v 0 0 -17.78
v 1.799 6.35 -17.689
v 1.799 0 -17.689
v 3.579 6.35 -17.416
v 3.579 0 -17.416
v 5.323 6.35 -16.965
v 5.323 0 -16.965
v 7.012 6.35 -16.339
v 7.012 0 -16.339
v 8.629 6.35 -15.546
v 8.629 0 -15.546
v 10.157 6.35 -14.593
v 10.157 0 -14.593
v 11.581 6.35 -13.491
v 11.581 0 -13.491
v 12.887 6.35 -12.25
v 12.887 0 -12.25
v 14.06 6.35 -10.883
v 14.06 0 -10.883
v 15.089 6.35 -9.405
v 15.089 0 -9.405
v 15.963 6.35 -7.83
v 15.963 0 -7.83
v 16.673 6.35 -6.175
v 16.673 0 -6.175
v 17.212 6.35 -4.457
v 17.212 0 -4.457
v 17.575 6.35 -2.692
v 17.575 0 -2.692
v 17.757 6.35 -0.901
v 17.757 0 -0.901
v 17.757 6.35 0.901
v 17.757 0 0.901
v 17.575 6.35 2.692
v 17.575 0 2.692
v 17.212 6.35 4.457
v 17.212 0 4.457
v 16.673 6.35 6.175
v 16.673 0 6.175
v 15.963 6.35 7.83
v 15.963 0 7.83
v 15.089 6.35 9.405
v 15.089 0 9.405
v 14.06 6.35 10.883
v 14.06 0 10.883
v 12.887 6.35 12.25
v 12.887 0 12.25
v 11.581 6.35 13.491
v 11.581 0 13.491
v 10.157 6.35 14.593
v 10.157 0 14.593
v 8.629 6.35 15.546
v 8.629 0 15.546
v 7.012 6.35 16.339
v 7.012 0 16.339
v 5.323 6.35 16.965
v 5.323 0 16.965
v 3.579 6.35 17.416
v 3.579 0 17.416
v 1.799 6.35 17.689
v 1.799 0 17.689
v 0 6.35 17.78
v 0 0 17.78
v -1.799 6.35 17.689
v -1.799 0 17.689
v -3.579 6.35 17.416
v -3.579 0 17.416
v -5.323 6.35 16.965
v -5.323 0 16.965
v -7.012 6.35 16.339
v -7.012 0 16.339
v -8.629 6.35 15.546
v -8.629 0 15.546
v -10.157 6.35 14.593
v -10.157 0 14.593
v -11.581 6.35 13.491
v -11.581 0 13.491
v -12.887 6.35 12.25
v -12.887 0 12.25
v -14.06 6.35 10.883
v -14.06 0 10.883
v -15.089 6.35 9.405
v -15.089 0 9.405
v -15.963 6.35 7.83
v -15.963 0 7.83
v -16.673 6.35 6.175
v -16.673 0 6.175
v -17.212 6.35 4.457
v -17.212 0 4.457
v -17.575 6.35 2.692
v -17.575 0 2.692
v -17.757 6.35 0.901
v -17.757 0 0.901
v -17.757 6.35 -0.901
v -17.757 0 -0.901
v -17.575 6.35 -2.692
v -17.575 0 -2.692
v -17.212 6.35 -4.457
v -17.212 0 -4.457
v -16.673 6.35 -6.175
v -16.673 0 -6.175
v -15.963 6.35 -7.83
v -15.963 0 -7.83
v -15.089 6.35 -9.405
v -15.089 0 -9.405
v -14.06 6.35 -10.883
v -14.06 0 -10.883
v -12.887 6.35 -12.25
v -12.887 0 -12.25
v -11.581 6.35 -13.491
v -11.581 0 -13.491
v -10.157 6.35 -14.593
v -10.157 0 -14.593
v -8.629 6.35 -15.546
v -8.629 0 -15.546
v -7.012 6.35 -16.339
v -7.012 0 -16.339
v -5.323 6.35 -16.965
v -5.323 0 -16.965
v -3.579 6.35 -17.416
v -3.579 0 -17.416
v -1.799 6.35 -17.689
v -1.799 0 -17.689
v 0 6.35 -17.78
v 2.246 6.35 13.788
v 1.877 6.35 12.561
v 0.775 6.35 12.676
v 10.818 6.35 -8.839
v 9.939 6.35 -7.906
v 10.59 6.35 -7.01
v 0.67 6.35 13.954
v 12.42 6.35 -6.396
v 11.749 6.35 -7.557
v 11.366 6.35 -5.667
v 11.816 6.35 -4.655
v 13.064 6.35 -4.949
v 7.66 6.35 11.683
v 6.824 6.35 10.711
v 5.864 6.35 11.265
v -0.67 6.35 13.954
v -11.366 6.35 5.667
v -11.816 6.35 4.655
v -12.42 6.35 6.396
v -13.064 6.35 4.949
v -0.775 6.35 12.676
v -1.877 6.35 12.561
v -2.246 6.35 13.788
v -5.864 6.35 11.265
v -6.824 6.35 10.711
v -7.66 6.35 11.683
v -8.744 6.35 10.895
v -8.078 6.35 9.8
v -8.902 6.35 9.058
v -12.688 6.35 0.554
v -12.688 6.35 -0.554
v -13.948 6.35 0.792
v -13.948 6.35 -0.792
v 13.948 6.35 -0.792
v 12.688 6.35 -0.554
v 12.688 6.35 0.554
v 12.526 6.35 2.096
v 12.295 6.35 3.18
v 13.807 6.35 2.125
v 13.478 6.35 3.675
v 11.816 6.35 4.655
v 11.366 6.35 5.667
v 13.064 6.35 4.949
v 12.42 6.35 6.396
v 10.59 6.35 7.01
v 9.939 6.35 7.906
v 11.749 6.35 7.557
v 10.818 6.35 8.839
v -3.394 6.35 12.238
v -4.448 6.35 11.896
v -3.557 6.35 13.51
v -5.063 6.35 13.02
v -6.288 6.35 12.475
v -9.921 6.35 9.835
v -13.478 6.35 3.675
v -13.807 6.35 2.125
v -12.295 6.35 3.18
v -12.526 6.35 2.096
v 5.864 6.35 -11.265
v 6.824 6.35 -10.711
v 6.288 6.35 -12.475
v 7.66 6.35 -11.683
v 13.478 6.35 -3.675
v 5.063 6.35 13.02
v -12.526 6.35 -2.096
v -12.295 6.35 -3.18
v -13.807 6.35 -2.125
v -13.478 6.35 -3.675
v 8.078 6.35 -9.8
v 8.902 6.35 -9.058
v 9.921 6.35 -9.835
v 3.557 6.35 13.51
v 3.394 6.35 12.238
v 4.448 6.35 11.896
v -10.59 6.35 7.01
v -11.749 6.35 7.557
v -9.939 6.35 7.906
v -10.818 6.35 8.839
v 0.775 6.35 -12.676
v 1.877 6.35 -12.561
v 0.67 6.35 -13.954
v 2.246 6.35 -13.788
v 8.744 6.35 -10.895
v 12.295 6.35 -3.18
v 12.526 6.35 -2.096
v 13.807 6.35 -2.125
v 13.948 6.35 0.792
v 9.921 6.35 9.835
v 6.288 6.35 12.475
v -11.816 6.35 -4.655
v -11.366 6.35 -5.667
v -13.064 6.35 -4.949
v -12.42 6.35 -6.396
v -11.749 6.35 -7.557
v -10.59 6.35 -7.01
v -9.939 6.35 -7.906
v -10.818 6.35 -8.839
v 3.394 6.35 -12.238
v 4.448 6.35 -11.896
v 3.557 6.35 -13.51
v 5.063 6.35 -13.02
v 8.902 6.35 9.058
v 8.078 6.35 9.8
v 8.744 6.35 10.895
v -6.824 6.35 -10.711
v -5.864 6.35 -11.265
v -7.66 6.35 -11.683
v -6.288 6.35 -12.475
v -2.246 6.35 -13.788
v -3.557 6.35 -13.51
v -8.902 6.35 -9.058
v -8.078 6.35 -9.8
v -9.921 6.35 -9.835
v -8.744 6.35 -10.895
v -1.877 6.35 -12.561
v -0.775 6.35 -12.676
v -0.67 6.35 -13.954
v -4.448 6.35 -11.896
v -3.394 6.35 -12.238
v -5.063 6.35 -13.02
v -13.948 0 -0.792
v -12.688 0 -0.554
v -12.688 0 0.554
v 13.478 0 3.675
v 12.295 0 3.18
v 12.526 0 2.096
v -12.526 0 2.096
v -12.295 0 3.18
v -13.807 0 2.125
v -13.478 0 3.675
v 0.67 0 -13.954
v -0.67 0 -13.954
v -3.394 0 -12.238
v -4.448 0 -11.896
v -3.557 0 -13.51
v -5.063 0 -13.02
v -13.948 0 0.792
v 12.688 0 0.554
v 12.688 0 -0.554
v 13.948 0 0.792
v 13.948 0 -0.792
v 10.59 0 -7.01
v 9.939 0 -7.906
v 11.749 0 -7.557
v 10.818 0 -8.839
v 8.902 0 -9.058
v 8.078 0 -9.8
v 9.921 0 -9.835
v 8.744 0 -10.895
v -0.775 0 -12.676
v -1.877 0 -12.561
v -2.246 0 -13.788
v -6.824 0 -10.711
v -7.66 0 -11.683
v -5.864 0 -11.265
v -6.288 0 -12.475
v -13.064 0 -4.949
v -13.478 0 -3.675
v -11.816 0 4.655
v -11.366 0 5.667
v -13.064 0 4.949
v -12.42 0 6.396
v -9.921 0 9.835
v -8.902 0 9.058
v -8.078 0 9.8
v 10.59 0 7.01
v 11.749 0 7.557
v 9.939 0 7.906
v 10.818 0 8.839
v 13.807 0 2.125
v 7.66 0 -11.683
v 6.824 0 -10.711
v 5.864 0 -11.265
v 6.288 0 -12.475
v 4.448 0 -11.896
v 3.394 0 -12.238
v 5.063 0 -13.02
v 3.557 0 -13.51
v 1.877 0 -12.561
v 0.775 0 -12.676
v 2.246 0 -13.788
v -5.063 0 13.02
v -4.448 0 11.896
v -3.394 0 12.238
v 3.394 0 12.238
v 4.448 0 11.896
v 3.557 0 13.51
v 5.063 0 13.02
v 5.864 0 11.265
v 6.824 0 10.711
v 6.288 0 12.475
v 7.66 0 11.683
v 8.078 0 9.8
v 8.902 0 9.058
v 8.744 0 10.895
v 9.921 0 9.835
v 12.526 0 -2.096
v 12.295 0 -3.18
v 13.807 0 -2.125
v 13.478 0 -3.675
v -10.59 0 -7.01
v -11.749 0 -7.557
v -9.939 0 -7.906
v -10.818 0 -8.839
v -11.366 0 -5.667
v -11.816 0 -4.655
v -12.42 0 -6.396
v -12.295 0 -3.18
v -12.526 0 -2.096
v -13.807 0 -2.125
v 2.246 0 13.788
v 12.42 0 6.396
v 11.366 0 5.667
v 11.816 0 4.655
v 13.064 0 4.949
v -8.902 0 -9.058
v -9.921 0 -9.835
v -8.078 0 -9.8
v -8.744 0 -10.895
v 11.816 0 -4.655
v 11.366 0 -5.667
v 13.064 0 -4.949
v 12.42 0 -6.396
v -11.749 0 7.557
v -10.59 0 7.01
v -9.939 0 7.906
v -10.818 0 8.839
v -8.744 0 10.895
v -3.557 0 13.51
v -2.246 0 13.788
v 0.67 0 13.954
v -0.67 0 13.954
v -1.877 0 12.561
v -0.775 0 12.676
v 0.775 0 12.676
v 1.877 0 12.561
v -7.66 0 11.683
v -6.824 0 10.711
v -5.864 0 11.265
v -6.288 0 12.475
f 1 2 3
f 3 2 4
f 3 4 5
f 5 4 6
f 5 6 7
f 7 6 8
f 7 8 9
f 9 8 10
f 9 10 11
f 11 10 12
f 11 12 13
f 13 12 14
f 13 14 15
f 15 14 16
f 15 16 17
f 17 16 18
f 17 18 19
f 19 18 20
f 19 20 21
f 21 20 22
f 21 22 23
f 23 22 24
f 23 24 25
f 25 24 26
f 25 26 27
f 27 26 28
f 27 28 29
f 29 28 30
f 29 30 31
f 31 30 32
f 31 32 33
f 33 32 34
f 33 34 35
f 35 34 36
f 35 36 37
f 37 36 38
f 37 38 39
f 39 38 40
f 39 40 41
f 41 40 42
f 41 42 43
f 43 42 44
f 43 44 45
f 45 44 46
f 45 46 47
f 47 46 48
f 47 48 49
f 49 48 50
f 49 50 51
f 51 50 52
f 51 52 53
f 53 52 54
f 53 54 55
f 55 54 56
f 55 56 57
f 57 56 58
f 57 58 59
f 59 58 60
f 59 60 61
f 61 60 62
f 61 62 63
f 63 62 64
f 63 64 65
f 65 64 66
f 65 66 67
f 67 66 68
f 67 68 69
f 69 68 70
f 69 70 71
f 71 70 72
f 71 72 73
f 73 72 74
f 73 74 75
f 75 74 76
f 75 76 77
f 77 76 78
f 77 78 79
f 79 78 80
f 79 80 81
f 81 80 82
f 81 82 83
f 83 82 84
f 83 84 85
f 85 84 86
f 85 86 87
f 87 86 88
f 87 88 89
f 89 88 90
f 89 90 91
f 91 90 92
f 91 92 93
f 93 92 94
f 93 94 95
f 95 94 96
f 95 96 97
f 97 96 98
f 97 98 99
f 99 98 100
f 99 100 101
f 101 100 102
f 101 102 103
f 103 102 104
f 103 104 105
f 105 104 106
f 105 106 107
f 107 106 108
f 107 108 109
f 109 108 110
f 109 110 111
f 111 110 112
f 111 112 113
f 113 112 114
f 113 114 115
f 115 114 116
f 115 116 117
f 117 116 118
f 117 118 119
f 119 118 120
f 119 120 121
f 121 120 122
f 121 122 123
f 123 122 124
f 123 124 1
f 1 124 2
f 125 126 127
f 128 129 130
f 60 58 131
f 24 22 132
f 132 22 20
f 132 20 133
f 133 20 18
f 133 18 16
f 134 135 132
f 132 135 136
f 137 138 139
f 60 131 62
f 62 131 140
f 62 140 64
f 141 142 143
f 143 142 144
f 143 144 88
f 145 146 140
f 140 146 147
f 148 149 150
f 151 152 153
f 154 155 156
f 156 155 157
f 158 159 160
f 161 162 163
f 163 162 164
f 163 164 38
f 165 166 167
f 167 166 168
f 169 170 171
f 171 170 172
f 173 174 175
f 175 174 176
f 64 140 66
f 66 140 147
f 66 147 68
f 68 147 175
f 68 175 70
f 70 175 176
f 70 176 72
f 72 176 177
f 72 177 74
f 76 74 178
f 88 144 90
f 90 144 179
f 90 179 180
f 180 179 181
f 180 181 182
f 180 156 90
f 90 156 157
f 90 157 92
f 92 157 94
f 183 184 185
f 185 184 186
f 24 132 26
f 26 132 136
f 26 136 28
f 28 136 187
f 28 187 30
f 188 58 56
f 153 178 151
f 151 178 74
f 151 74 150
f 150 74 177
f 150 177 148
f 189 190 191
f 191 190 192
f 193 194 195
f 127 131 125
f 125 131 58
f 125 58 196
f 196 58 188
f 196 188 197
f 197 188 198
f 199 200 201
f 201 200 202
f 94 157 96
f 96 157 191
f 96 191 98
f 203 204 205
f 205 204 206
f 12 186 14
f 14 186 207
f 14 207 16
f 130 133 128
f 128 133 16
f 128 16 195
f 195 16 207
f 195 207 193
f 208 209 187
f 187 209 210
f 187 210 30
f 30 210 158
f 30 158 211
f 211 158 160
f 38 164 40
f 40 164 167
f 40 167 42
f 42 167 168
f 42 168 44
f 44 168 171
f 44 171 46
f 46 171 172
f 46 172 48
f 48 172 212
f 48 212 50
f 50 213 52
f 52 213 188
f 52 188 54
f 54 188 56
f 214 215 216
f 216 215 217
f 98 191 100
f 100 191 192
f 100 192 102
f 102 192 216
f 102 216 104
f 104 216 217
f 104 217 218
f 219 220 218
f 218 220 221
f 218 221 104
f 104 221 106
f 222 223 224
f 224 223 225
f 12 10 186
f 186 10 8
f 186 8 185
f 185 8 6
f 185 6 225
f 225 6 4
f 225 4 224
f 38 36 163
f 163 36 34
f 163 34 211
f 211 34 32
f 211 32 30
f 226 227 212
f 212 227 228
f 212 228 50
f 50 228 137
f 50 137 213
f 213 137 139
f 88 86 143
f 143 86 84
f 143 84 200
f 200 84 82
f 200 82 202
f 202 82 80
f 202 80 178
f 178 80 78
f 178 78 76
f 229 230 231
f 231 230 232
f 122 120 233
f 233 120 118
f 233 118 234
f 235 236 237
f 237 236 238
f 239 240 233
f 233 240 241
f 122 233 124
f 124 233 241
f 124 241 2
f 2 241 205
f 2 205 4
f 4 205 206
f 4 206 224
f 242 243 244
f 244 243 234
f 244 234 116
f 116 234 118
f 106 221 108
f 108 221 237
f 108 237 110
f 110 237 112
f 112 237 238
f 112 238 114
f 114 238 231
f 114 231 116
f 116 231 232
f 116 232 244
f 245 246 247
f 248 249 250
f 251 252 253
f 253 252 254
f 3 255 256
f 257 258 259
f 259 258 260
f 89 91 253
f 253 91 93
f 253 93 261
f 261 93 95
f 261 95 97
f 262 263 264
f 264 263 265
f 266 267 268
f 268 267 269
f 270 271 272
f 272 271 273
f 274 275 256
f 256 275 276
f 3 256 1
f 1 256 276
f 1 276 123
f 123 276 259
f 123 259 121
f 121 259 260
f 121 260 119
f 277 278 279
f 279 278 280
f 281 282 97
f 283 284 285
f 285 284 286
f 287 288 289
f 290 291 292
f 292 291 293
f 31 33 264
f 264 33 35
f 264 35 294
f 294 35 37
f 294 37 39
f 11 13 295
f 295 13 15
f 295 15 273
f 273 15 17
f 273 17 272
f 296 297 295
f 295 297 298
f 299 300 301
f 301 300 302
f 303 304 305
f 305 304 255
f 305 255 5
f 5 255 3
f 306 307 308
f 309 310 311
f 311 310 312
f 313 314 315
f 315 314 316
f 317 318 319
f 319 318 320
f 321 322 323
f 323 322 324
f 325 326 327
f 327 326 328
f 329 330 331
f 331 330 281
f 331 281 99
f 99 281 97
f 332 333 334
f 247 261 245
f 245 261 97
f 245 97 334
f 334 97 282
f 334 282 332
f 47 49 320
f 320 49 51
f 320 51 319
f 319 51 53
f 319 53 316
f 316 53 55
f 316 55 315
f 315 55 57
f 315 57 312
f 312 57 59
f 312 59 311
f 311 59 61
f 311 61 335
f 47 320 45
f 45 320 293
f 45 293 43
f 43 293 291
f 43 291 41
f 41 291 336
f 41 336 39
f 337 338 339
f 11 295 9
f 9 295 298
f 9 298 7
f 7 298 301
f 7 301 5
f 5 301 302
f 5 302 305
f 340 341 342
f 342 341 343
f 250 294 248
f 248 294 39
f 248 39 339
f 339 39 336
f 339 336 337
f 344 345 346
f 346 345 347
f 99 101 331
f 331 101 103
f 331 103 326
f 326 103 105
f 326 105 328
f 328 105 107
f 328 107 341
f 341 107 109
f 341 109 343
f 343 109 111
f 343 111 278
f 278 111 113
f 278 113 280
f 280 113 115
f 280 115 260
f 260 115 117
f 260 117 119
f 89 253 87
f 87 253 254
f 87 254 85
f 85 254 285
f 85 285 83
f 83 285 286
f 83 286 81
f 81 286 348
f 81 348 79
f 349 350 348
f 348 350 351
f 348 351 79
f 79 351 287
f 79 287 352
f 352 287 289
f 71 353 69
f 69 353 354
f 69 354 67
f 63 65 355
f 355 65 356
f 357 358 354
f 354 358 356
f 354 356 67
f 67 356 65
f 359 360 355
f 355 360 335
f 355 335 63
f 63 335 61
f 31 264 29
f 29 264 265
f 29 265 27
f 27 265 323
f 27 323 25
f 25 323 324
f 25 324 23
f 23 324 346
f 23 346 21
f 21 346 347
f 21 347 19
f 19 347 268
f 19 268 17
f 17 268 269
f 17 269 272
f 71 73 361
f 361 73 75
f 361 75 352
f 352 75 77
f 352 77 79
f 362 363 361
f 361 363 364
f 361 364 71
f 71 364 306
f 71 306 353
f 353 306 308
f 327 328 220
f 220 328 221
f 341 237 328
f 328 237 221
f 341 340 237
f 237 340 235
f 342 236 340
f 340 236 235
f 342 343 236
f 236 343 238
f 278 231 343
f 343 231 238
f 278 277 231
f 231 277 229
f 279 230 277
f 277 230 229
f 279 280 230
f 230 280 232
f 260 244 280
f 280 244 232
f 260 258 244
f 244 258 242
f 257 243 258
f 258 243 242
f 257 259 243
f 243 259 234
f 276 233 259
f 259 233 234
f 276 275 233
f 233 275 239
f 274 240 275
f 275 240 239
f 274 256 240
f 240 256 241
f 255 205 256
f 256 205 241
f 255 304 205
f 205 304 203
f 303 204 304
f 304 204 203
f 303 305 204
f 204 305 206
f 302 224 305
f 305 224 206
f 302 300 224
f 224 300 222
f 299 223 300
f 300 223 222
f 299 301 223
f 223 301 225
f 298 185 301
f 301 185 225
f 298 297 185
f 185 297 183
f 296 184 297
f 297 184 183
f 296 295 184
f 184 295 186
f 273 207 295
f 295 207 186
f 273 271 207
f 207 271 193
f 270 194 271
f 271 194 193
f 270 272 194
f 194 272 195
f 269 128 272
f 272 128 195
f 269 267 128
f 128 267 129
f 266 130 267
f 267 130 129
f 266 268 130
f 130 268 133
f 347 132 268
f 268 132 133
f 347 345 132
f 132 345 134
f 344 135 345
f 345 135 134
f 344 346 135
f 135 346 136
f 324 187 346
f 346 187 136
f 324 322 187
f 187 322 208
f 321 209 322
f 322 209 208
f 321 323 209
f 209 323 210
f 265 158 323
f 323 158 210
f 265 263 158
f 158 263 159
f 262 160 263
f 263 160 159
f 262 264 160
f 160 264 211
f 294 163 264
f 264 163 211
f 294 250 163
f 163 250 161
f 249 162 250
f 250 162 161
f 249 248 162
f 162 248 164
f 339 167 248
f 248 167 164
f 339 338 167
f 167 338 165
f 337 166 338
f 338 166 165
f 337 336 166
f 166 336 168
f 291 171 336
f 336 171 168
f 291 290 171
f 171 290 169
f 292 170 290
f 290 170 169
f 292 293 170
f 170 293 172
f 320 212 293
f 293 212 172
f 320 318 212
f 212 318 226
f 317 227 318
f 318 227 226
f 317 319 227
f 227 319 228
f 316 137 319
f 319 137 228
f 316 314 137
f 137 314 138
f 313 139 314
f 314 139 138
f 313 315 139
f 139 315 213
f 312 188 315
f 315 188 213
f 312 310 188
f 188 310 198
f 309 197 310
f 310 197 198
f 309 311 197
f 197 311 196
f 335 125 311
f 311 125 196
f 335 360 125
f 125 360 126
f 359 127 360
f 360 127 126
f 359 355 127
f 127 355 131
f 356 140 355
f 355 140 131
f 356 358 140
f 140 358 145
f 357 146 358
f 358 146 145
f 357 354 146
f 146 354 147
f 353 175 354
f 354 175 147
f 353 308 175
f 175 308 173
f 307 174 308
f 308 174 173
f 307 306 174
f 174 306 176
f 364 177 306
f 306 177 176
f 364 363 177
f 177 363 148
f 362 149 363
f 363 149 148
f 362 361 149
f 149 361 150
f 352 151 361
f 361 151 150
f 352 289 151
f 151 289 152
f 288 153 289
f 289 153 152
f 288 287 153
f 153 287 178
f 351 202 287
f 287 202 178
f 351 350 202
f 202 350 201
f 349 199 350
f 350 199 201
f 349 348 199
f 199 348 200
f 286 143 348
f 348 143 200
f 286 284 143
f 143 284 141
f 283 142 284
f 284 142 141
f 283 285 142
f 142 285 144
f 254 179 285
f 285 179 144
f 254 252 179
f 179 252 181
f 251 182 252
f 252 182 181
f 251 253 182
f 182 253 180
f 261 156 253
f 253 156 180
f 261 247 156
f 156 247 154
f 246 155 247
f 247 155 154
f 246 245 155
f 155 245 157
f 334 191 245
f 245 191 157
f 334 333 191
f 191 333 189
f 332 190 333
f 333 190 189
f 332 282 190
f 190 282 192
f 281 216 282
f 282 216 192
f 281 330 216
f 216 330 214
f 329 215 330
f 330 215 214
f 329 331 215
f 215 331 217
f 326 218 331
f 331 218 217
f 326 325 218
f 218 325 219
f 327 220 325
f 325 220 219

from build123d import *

# Parameters (mm, degrees)
SKETCH1_R           = 17.78
BOSS_EXTRUDE1_DEPTH = 6.35
CUT_EXTRUDE1_DEPTH  = 7.35


with BuildPart() as part:
    # Sketch1 → Boss-Extrude1 (new body)
    with BuildSketch(Plane(origin=(0, 0, 0), x_dir=(1, 0, 0), z_dir=(0, 1, 0))):
        Circle(SKETCH1_R)
    extrude(amount=BOSS_EXTRUDE1_DEPTH)

    # Sketch2 → Cut-Extrude1 (cut, through all)
    with BuildSketch(Plane(origin=(0, 6.35, 0), x_dir=(1, 0, 0), z_dir=(0, 1, 0))):
        with BuildLine():
            Line((-0.670254455, 13.953911959), (-0.775316452, 12.67631194))
            ThreePointArc((-0.775316452, 12.67631194), (-1.327511483, 12.630428071), (-1.877179521, 12.560501465))
            Line((-1.877179521, 12.560501465), (-2.245573641, 13.788339241))
            ThreePointArc((-2.245573641, 13.788339241), (-2.904526321, 13.664721982), (-3.556789216, 13.509631767))
            Line((-3.556789216, 13.509631767), (-3.393927376, 12.238106756))
            ThreePointArc((-3.393927376, 12.238106756), (-3.924515829, 12.078417757), (-4.447633742, 11.895736803))
            Line((-4.447633742, 11.895736803), (-5.063259395, 13.020149934))
            ThreePointArc((-5.063259395, 13.020149934), (-5.682110904, 12.762230043), (-6.287875221, 12.474915839))
            Line((-6.287875221, 12.474915839), (-5.864207388, 11.265037581))
            ThreePointArc((-5.864207388, 11.265037581), (-6.35, 10.998522628), (-6.823705026, 10.711071362))
            Line((-6.823705026, 10.711071362), (-7.659656416, 11.682917597))
            ThreePointArc((-7.659656416, 11.682917597), (-8.211359975, 11.301967411), (-8.744150906, 10.894986229))
            Line((-8.744150906, 10.894986229), (-8.078193398, 9.799632209))
            ThreePointArc((-8.078193398, 9.799632209), (-8.497958701, 9.437939284), (-8.901547657, 9.058280704))
            Line((-8.901547657, 9.058280704), (-9.921289697, 9.835085701))
            ThreePointArc((-9.921289697, 9.835085701), (-10.381733212, 9.347754571), (-10.818265238, 8.83889344))
            Line((-10.818265238, 8.83889344), (-9.939123592, 7.905935885))
            ThreePointArc((-9.939123592, 7.905935885), (-10.274515829, 7.464872704), (-10.59034994, 7.009599713))
            Line((-10.59034994, 7.009599713), (-11.749315011, 7.557413365))
            ThreePointArc((-11.749315011, 7.557413365), (-12.098374891, 6.985), (-12.419569467, 6.396498594))
            Line((-12.419569467, 6.396498594), (-11.365666392, 5.666712226))
            ThreePointArc((-11.365666392, 5.666712226), (-11.602027312, 5.165555367), (-11.816303113, 4.654565579))
            Line((-11.816303113, 4.654565579), (-13.063838879, 4.949445801))
            ThreePointArc((-13.063838879, 4.949445801), (-13.286259533, 4.316967411), (-13.478078914, 3.674546066))
            Line((-13.478078914, 3.674546066), (-12.295475033, 3.179826051))
            ThreePointArc((-12.295475033, 3.179826051), (-12.422474529, 2.640478473), (-12.52582714, 2.096104594))
            Line((-12.52582714, 2.096104594), (-13.807410301, 2.125163705))
            ThreePointArc((-13.807410301, 2.125163705), (-13.893470878, 1.460262632), (-13.947531638, 0.791998242))
            Line((-13.947531638, 0.791998242), (-12.687912414, 0.55396622))
            ThreePointArc((-12.687912414, 0.55396622), (-12.7, 0), (-12.687912414, -0.55396622))
            Line((-12.687912414, -0.55396622), (-13.947531638, -0.791998242))
            ThreePointArc((-13.947531638, -0.791998242), (-13.893470878, -1.460262632), (-13.807410301, -2.125163705))
            Line((-13.807410301, -2.125163705), (-12.52582714, -2.096104594))
            ThreePointArc((-12.52582714, -2.096104594), (-12.422474529, -2.640478473), (-12.295475033, -3.179826051))
            Line((-12.295475033, -3.179826051), (-13.478078914, -3.674546066))
            ThreePointArc((-13.478078914, -3.674546066), (-13.286259533, -4.316967411), (-13.063838879, -4.949445801))
            Line((-13.063838879, -4.949445801), (-11.816303113, -4.654565579))
            ThreePointArc((-11.816303113, -4.654565579), (-11.602027312, -5.165555367), (-11.365666392, -5.666712226))
            Line((-11.365666392, -5.666712226), (-12.419569467, -6.396498594))
            ThreePointArc((-12.419569467, -6.396498594), (-12.098374891, -6.985), (-11.749315011, -7.557413365))
            Line((-11.749315011, -7.557413365), (-10.59034994, -7.009599713))
            ThreePointArc((-10.59034994, -7.009599713), (-10.274515829, -7.464872704), (-9.939123592, -7.905935885))
            Line((-9.939123592, -7.905935885), (-10.818265238, -8.83889344))
            ThreePointArc((-10.818265238, -8.83889344), (-10.381733212, -9.347754571), (-9.921289697, -9.835085701))
            Line((-9.921289697, -9.835085701), (-8.901547657, -9.058280704))
            ThreePointArc((-8.901547657, -9.058280704), (-8.497958701, -9.437939284), (-8.078193398, -9.799632209))
            Line((-8.078193398, -9.799632209), (-8.744150906, -10.894986229))
            ThreePointArc((-8.744150906, -10.894986229), (-8.211359975, -11.301967411), (-7.659656416, -11.682917597))
            Line((-7.659656416, -11.682917597), (-6.823705026, -10.711071362))
            ThreePointArc((-6.823705026, -10.711071362), (-6.35, -10.998522628), (-5.864207388, -11.265037581))
            Line((-5.864207388, -11.265037581), (-6.287875221, -12.474915839))
            ThreePointArc((-6.287875221, -12.474915839), (-5.682110904, -12.762230043), (-5.063259395, -13.020149934))
            Line((-5.063259395, -13.020149934), (-4.447633742, -11.895736803))
            ThreePointArc((-4.447633742, -11.895736803), (-3.924515829, -12.078417757), (-3.393927376, -12.238106756))
            Line((-3.393927376, -12.238106756), (-3.556789216, -13.509631767))
            ThreePointArc((-3.556789216, -13.509631767), (-2.904526321, -13.664721982), (-2.245573641, -13.788339241))
            Line((-2.245573641, -13.788339241), (-1.877179521, -12.560501465))
            ThreePointArc((-1.877179521, -12.560501465), (-1.327511483, -12.630428071), (-0.775316452, -12.67631194))
            Line((-0.775316452, -12.67631194), (-0.670254455, -13.953911959))
            ThreePointArc((-0.670254455, -13.953911959), (0, -13.97), (0.670254455, -13.953911959))
            Line((0.670254455, -13.953911959), (0.775316452, -12.67631194))
            ThreePointArc((0.775316452, -12.67631194), (1.327511483, -12.630428071), (1.877179521, -12.560501465))
            Line((1.877179521, -12.560501465), (2.245573641, -13.788339241))
            ThreePointArc((2.245573641, -13.788339241), (2.904526321, -13.664721982), (3.556789216, -13.509631767))
            Line((3.556789216, -13.509631767), (3.393927376, -12.238106756))
            ThreePointArc((3.393927376, -12.238106756), (3.924515829, -12.078417757), (4.447633742, -11.895736803))
            Line((4.447633742, -11.895736803), (5.063259395, -13.020149934))
            ThreePointArc((5.063259395, -13.020149934), (5.682110904, -12.762230043), (6.287875221, -12.474915839))
            Line((6.287875221, -12.474915839), (5.864207388, -11.265037581))
            ThreePointArc((5.864207388, -11.265037581), (6.35, -10.998522628), (6.823705026, -10.711071362))
            Line((6.823705026, -10.711071362), (7.659656416, -11.682917597))
            ThreePointArc((7.659656416, -11.682917597), (8.211359975, -11.301967411), (8.744150906, -10.894986229))
            Line((8.744150906, -10.894986229), (8.078193398, -9.799632209))
            ThreePointArc((8.078193398, -9.799632209), (8.497958701, -9.437939284), (8.901547657, -9.058280704))
            Line((8.901547657, -9.058280704), (9.921289697, -9.835085701))
            ThreePointArc((9.921289697, -9.835085701), (10.381733212, -9.347754571), (10.818265238, -8.83889344))
            Line((10.818265238, -8.83889344), (9.939123592, -7.905935885))
            ThreePointArc((9.939123592, -7.905935885), (10.274515829, -7.464872704), (10.59034994, -7.009599713))
            Line((10.59034994, -7.009599713), (11.749315011, -7.557413365))
            ThreePointArc((11.749315011, -7.557413365), (12.098374891, -6.985), (12.419569467, -6.396498594))
            Line((12.419569467, -6.396498594), (11.365666392, -5.666712226))
            ThreePointArc((11.365666392, -5.666712226), (11.602027312, -5.165555367), (11.816303113, -4.654565579))
            Line((11.816303113, -4.654565579), (13.063838879, -4.949445801))
            ThreePointArc((13.063838879, -4.949445801), (13.286259533, -4.316967411), (13.478078914, -3.674546066))
            Line((13.478078914, -3.674546066), (12.295475033, -3.179826051))
            ThreePointArc((12.295475033, -3.179826051), (12.422474529, -2.640478473), (12.52582714, -2.096104594))
            Line((12.52582714, -2.096104594), (13.807410301, -2.125163705))
            ThreePointArc((13.807410301, -2.125163705), (13.893470878, -1.460262632), (13.947531638, -0.791998242))
            Line((13.947531638, -0.791998242), (12.687912414, -0.55396622))
            ThreePointArc((12.687912414, -0.55396622), (12.7, 0), (12.687912414, 0.55396622))
            Line((12.687912414, 0.55396622), (13.947531638, 0.791998242))
            ThreePointArc((13.947531638, 0.791998242), (13.893470878, 1.460262632), (13.807410301, 2.125163705))
            Line((13.807410301, 2.125163705), (12.52582714, 2.096104594))
            ThreePointArc((12.52582714, 2.096104594), (12.422474529, 2.640478473), (12.295475033, 3.179826051))
            Line((12.295475033, 3.179826051), (13.478078914, 3.674546066))
            ThreePointArc((13.478078914, 3.674546066), (13.286259533, 4.316967411), (13.063838879, 4.949445801))
            Line((13.063838879, 4.949445801), (11.816303113, 4.654565579))
            ThreePointArc((11.816303113, 4.654565579), (11.602027312, 5.165555367), (11.365666392, 5.666712226))
            Line((11.365666392, 5.666712226), (12.419569467, 6.396498594))
            ThreePointArc((12.419569467, 6.396498594), (12.098374891, 6.985), (11.749315011, 7.557413365))
            Line((11.749315011, 7.557413365), (10.59034994, 7.009599713))
            ThreePointArc((10.59034994, 7.009599713), (10.274515829, 7.464872704), (9.939123592, 7.905935885))
            Line((9.939123592, 7.905935885), (10.818265238, 8.83889344))
            ThreePointArc((10.818265238, 8.83889344), (10.381733212, 9.347754571), (9.921289697, 9.835085701))
            Line((9.921289697, 9.835085701), (8.901547657, 9.058280704))
            ThreePointArc((8.901547657, 9.058280704), (8.497958701, 9.437939284), (8.078193398, 9.799632209))
            Line((8.078193398, 9.799632209), (8.744150906, 10.894986229))
            ThreePointArc((8.744150906, 10.894986229), (8.211359975, 11.301967411), (7.659656416, 11.682917597))
            Line((7.659656416, 11.682917597), (6.823705026, 10.711071362))
            ThreePointArc((6.823705026, 10.711071362), (6.35, 10.998522628), (5.864207388, 11.265037581))
            Line((5.864207388, 11.265037581), (6.287875221, 12.474915839))
            ThreePointArc((6.287875221, 12.474915839), (5.682110904, 12.762230043), (5.063259395, 13.020149934))
            Line((5.063259395, 13.020149934), (4.447633742, 11.895736803))
            ThreePointArc((4.447633742, 11.895736803), (3.924515829, 12.078417757), (3.393927376, 12.238106756))
            Line((3.393927376, 12.238106756), (3.556789216, 13.509631767))
            ThreePointArc((3.556789216, 13.509631767), (2.904526321, 13.664721982), (2.245573641, 13.788339241))
            Line((2.245573641, 13.788339241), (1.877179521, 12.560501465))
            ThreePointArc((1.877179521, 12.560501465), (1.327511483, 12.630428071), (0.775316452, 12.67631194))
            Line((0.775316452, 12.67631194), (0.670254455, 13.953911959))
            ThreePointArc((0.670254455, 13.953911959), (0, 13.97), (-0.670254455, 13.953911959))
        make_face()
    extrude(amount=-CUT_EXTRUDE1_DEPTH, mode=Mode.SUBTRACT)


solid = part.part
